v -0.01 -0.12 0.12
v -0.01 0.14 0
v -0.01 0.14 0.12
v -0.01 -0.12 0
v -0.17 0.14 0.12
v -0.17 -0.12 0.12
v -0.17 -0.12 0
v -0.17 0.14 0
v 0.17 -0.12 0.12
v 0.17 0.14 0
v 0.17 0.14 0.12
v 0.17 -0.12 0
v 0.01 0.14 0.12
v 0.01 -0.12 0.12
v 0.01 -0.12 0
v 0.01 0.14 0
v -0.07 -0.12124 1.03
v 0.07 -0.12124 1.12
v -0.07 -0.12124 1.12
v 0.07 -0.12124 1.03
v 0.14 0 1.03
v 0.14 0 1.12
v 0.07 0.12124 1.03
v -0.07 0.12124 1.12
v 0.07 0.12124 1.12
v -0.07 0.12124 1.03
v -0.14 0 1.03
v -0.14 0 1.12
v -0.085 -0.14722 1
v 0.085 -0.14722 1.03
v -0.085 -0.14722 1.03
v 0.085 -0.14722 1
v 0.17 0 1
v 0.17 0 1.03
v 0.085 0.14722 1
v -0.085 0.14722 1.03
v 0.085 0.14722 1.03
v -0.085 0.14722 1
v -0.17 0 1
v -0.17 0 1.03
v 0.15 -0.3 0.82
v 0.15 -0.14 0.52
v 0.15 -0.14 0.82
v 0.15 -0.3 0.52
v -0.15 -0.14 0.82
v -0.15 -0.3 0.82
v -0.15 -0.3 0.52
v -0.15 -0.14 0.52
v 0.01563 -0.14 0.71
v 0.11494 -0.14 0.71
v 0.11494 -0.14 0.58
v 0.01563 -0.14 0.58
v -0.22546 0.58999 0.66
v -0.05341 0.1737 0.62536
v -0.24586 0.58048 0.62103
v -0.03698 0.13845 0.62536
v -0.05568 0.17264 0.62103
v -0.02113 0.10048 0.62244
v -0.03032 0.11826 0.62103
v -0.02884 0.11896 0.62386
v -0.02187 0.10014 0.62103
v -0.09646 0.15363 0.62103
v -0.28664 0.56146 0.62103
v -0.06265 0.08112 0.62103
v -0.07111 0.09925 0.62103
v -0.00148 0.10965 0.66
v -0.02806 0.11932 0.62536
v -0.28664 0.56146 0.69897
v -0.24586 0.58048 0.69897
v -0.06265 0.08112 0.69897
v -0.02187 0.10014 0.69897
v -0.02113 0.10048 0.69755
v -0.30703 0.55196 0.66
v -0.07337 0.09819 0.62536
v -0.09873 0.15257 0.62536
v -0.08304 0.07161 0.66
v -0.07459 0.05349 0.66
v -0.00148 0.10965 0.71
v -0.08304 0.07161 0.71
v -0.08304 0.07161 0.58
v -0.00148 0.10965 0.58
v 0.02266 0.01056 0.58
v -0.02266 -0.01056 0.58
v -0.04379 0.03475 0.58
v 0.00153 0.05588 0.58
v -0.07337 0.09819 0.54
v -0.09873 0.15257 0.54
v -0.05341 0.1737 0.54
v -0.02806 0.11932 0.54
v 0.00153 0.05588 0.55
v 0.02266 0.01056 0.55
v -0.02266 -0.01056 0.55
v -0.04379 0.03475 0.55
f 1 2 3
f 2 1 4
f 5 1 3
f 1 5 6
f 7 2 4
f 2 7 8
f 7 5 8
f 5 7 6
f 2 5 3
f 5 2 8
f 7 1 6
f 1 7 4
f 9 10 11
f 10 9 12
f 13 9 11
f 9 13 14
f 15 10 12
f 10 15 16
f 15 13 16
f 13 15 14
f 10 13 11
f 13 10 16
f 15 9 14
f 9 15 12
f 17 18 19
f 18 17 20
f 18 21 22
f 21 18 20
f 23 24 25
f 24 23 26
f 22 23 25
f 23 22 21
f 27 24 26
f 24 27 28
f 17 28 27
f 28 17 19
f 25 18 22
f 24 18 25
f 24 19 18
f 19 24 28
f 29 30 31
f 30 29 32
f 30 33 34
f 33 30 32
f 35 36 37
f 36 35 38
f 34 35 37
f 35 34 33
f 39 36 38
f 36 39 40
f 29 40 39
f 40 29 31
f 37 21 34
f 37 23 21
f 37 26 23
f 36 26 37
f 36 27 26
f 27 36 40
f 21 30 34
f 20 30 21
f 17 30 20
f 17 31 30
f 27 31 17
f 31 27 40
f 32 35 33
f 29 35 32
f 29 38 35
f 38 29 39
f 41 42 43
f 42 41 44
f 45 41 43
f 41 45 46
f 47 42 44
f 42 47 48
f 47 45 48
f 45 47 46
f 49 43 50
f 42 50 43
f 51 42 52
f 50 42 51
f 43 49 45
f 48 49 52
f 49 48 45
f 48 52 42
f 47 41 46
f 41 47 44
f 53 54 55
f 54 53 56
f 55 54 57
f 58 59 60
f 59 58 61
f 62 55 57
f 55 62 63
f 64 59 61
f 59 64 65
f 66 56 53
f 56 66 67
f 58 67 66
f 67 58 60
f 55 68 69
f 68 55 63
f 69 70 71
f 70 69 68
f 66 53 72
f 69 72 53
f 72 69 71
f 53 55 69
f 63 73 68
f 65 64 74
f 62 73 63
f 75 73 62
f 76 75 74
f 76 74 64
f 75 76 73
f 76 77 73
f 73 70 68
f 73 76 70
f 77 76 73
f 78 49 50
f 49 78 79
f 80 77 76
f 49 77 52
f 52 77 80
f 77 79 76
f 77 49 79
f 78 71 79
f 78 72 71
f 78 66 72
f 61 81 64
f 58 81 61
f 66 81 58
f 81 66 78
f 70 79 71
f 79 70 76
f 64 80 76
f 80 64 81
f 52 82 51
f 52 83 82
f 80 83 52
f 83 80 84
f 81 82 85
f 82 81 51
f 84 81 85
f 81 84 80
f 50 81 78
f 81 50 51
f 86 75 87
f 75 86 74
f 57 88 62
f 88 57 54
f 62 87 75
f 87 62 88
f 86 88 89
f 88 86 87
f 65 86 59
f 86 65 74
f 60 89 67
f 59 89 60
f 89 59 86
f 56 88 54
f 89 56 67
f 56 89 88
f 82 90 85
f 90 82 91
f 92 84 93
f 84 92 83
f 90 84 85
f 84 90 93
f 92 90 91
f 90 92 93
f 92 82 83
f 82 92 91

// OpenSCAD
union() {
  union() {
    union() {
      union() {
        union() {
          union() {
            union() {
              union() {
                translate([-0.17, 0, 0]) {
                  translate([0, -0.12, 0]) {
                    translate([0, 0, 0.0]) {
                      cube([0.16, 0.26, 0.12]);
                    }
                  }
                }
                translate([1.0e-2, 0, 0]) {
                  translate([0, -0.12, 0]) {
                    translate([0, 0, 0.0]) {
                      cube([0.16, 0.26, 0.12]);
                    }
                  }
                }
              }
              translate([0, 0, 1.02]) {
                cylinder(h = 0.1, r = 0.14, $fn = 6);
              }
            }
            translate([0, 0, 1.0]) {
              cylinder(h = 3.0e-2, r = 0.17, $fn = 6);
            }
          }
          translate([-0.15, 0, 0]) {
            translate([0, -0.3, 0]) {
              translate([0, 0, 0.52]) {
                cube([0.3, 0.16, 0.3]);
              }
            }
          }
        }
        rotate([0, 0, 25.0]) {
          translate([0, 8.0e-2, 0]) {
            translate([0, 0, 0.66]) {
              rotate([-90.0, 0, 0]) {
                cylinder(h = 0.55, r = 4.5e-2, $fn = 6);
              }
            }
          }
        }
      }
      rotate([0, 0, 25.0]) {
        translate([-4.5e-2, 0, 0]) {
          translate([0, -0.22, 0]) {
            translate([0, 0, 0.58]) {
              cube([9.0e-2, 0.32, 0.13]);
            }
          }
        }
      }
    }
    rotate([0, 0, 25.0]) {
      translate([-2.5e-2, 0, 0]) {
        translate([0, 0.12, 0]) {
          translate([0, 0, 0.54]) {
            cube([5.0e-2, 6.0e-2, 0.14]);
          }
        }
      }
    }
  }
  rotate([0, 0, 25.0]) {
    translate([-2.5e-2, 0, 0]) {
      translate([0, 0.0, 0]) {
        translate([0, 0, 0.55]) {
          cube([5.0e-2, 5.0e-2, 0.12]);
        }
      }
    }
  }
}
$fn = 50;
